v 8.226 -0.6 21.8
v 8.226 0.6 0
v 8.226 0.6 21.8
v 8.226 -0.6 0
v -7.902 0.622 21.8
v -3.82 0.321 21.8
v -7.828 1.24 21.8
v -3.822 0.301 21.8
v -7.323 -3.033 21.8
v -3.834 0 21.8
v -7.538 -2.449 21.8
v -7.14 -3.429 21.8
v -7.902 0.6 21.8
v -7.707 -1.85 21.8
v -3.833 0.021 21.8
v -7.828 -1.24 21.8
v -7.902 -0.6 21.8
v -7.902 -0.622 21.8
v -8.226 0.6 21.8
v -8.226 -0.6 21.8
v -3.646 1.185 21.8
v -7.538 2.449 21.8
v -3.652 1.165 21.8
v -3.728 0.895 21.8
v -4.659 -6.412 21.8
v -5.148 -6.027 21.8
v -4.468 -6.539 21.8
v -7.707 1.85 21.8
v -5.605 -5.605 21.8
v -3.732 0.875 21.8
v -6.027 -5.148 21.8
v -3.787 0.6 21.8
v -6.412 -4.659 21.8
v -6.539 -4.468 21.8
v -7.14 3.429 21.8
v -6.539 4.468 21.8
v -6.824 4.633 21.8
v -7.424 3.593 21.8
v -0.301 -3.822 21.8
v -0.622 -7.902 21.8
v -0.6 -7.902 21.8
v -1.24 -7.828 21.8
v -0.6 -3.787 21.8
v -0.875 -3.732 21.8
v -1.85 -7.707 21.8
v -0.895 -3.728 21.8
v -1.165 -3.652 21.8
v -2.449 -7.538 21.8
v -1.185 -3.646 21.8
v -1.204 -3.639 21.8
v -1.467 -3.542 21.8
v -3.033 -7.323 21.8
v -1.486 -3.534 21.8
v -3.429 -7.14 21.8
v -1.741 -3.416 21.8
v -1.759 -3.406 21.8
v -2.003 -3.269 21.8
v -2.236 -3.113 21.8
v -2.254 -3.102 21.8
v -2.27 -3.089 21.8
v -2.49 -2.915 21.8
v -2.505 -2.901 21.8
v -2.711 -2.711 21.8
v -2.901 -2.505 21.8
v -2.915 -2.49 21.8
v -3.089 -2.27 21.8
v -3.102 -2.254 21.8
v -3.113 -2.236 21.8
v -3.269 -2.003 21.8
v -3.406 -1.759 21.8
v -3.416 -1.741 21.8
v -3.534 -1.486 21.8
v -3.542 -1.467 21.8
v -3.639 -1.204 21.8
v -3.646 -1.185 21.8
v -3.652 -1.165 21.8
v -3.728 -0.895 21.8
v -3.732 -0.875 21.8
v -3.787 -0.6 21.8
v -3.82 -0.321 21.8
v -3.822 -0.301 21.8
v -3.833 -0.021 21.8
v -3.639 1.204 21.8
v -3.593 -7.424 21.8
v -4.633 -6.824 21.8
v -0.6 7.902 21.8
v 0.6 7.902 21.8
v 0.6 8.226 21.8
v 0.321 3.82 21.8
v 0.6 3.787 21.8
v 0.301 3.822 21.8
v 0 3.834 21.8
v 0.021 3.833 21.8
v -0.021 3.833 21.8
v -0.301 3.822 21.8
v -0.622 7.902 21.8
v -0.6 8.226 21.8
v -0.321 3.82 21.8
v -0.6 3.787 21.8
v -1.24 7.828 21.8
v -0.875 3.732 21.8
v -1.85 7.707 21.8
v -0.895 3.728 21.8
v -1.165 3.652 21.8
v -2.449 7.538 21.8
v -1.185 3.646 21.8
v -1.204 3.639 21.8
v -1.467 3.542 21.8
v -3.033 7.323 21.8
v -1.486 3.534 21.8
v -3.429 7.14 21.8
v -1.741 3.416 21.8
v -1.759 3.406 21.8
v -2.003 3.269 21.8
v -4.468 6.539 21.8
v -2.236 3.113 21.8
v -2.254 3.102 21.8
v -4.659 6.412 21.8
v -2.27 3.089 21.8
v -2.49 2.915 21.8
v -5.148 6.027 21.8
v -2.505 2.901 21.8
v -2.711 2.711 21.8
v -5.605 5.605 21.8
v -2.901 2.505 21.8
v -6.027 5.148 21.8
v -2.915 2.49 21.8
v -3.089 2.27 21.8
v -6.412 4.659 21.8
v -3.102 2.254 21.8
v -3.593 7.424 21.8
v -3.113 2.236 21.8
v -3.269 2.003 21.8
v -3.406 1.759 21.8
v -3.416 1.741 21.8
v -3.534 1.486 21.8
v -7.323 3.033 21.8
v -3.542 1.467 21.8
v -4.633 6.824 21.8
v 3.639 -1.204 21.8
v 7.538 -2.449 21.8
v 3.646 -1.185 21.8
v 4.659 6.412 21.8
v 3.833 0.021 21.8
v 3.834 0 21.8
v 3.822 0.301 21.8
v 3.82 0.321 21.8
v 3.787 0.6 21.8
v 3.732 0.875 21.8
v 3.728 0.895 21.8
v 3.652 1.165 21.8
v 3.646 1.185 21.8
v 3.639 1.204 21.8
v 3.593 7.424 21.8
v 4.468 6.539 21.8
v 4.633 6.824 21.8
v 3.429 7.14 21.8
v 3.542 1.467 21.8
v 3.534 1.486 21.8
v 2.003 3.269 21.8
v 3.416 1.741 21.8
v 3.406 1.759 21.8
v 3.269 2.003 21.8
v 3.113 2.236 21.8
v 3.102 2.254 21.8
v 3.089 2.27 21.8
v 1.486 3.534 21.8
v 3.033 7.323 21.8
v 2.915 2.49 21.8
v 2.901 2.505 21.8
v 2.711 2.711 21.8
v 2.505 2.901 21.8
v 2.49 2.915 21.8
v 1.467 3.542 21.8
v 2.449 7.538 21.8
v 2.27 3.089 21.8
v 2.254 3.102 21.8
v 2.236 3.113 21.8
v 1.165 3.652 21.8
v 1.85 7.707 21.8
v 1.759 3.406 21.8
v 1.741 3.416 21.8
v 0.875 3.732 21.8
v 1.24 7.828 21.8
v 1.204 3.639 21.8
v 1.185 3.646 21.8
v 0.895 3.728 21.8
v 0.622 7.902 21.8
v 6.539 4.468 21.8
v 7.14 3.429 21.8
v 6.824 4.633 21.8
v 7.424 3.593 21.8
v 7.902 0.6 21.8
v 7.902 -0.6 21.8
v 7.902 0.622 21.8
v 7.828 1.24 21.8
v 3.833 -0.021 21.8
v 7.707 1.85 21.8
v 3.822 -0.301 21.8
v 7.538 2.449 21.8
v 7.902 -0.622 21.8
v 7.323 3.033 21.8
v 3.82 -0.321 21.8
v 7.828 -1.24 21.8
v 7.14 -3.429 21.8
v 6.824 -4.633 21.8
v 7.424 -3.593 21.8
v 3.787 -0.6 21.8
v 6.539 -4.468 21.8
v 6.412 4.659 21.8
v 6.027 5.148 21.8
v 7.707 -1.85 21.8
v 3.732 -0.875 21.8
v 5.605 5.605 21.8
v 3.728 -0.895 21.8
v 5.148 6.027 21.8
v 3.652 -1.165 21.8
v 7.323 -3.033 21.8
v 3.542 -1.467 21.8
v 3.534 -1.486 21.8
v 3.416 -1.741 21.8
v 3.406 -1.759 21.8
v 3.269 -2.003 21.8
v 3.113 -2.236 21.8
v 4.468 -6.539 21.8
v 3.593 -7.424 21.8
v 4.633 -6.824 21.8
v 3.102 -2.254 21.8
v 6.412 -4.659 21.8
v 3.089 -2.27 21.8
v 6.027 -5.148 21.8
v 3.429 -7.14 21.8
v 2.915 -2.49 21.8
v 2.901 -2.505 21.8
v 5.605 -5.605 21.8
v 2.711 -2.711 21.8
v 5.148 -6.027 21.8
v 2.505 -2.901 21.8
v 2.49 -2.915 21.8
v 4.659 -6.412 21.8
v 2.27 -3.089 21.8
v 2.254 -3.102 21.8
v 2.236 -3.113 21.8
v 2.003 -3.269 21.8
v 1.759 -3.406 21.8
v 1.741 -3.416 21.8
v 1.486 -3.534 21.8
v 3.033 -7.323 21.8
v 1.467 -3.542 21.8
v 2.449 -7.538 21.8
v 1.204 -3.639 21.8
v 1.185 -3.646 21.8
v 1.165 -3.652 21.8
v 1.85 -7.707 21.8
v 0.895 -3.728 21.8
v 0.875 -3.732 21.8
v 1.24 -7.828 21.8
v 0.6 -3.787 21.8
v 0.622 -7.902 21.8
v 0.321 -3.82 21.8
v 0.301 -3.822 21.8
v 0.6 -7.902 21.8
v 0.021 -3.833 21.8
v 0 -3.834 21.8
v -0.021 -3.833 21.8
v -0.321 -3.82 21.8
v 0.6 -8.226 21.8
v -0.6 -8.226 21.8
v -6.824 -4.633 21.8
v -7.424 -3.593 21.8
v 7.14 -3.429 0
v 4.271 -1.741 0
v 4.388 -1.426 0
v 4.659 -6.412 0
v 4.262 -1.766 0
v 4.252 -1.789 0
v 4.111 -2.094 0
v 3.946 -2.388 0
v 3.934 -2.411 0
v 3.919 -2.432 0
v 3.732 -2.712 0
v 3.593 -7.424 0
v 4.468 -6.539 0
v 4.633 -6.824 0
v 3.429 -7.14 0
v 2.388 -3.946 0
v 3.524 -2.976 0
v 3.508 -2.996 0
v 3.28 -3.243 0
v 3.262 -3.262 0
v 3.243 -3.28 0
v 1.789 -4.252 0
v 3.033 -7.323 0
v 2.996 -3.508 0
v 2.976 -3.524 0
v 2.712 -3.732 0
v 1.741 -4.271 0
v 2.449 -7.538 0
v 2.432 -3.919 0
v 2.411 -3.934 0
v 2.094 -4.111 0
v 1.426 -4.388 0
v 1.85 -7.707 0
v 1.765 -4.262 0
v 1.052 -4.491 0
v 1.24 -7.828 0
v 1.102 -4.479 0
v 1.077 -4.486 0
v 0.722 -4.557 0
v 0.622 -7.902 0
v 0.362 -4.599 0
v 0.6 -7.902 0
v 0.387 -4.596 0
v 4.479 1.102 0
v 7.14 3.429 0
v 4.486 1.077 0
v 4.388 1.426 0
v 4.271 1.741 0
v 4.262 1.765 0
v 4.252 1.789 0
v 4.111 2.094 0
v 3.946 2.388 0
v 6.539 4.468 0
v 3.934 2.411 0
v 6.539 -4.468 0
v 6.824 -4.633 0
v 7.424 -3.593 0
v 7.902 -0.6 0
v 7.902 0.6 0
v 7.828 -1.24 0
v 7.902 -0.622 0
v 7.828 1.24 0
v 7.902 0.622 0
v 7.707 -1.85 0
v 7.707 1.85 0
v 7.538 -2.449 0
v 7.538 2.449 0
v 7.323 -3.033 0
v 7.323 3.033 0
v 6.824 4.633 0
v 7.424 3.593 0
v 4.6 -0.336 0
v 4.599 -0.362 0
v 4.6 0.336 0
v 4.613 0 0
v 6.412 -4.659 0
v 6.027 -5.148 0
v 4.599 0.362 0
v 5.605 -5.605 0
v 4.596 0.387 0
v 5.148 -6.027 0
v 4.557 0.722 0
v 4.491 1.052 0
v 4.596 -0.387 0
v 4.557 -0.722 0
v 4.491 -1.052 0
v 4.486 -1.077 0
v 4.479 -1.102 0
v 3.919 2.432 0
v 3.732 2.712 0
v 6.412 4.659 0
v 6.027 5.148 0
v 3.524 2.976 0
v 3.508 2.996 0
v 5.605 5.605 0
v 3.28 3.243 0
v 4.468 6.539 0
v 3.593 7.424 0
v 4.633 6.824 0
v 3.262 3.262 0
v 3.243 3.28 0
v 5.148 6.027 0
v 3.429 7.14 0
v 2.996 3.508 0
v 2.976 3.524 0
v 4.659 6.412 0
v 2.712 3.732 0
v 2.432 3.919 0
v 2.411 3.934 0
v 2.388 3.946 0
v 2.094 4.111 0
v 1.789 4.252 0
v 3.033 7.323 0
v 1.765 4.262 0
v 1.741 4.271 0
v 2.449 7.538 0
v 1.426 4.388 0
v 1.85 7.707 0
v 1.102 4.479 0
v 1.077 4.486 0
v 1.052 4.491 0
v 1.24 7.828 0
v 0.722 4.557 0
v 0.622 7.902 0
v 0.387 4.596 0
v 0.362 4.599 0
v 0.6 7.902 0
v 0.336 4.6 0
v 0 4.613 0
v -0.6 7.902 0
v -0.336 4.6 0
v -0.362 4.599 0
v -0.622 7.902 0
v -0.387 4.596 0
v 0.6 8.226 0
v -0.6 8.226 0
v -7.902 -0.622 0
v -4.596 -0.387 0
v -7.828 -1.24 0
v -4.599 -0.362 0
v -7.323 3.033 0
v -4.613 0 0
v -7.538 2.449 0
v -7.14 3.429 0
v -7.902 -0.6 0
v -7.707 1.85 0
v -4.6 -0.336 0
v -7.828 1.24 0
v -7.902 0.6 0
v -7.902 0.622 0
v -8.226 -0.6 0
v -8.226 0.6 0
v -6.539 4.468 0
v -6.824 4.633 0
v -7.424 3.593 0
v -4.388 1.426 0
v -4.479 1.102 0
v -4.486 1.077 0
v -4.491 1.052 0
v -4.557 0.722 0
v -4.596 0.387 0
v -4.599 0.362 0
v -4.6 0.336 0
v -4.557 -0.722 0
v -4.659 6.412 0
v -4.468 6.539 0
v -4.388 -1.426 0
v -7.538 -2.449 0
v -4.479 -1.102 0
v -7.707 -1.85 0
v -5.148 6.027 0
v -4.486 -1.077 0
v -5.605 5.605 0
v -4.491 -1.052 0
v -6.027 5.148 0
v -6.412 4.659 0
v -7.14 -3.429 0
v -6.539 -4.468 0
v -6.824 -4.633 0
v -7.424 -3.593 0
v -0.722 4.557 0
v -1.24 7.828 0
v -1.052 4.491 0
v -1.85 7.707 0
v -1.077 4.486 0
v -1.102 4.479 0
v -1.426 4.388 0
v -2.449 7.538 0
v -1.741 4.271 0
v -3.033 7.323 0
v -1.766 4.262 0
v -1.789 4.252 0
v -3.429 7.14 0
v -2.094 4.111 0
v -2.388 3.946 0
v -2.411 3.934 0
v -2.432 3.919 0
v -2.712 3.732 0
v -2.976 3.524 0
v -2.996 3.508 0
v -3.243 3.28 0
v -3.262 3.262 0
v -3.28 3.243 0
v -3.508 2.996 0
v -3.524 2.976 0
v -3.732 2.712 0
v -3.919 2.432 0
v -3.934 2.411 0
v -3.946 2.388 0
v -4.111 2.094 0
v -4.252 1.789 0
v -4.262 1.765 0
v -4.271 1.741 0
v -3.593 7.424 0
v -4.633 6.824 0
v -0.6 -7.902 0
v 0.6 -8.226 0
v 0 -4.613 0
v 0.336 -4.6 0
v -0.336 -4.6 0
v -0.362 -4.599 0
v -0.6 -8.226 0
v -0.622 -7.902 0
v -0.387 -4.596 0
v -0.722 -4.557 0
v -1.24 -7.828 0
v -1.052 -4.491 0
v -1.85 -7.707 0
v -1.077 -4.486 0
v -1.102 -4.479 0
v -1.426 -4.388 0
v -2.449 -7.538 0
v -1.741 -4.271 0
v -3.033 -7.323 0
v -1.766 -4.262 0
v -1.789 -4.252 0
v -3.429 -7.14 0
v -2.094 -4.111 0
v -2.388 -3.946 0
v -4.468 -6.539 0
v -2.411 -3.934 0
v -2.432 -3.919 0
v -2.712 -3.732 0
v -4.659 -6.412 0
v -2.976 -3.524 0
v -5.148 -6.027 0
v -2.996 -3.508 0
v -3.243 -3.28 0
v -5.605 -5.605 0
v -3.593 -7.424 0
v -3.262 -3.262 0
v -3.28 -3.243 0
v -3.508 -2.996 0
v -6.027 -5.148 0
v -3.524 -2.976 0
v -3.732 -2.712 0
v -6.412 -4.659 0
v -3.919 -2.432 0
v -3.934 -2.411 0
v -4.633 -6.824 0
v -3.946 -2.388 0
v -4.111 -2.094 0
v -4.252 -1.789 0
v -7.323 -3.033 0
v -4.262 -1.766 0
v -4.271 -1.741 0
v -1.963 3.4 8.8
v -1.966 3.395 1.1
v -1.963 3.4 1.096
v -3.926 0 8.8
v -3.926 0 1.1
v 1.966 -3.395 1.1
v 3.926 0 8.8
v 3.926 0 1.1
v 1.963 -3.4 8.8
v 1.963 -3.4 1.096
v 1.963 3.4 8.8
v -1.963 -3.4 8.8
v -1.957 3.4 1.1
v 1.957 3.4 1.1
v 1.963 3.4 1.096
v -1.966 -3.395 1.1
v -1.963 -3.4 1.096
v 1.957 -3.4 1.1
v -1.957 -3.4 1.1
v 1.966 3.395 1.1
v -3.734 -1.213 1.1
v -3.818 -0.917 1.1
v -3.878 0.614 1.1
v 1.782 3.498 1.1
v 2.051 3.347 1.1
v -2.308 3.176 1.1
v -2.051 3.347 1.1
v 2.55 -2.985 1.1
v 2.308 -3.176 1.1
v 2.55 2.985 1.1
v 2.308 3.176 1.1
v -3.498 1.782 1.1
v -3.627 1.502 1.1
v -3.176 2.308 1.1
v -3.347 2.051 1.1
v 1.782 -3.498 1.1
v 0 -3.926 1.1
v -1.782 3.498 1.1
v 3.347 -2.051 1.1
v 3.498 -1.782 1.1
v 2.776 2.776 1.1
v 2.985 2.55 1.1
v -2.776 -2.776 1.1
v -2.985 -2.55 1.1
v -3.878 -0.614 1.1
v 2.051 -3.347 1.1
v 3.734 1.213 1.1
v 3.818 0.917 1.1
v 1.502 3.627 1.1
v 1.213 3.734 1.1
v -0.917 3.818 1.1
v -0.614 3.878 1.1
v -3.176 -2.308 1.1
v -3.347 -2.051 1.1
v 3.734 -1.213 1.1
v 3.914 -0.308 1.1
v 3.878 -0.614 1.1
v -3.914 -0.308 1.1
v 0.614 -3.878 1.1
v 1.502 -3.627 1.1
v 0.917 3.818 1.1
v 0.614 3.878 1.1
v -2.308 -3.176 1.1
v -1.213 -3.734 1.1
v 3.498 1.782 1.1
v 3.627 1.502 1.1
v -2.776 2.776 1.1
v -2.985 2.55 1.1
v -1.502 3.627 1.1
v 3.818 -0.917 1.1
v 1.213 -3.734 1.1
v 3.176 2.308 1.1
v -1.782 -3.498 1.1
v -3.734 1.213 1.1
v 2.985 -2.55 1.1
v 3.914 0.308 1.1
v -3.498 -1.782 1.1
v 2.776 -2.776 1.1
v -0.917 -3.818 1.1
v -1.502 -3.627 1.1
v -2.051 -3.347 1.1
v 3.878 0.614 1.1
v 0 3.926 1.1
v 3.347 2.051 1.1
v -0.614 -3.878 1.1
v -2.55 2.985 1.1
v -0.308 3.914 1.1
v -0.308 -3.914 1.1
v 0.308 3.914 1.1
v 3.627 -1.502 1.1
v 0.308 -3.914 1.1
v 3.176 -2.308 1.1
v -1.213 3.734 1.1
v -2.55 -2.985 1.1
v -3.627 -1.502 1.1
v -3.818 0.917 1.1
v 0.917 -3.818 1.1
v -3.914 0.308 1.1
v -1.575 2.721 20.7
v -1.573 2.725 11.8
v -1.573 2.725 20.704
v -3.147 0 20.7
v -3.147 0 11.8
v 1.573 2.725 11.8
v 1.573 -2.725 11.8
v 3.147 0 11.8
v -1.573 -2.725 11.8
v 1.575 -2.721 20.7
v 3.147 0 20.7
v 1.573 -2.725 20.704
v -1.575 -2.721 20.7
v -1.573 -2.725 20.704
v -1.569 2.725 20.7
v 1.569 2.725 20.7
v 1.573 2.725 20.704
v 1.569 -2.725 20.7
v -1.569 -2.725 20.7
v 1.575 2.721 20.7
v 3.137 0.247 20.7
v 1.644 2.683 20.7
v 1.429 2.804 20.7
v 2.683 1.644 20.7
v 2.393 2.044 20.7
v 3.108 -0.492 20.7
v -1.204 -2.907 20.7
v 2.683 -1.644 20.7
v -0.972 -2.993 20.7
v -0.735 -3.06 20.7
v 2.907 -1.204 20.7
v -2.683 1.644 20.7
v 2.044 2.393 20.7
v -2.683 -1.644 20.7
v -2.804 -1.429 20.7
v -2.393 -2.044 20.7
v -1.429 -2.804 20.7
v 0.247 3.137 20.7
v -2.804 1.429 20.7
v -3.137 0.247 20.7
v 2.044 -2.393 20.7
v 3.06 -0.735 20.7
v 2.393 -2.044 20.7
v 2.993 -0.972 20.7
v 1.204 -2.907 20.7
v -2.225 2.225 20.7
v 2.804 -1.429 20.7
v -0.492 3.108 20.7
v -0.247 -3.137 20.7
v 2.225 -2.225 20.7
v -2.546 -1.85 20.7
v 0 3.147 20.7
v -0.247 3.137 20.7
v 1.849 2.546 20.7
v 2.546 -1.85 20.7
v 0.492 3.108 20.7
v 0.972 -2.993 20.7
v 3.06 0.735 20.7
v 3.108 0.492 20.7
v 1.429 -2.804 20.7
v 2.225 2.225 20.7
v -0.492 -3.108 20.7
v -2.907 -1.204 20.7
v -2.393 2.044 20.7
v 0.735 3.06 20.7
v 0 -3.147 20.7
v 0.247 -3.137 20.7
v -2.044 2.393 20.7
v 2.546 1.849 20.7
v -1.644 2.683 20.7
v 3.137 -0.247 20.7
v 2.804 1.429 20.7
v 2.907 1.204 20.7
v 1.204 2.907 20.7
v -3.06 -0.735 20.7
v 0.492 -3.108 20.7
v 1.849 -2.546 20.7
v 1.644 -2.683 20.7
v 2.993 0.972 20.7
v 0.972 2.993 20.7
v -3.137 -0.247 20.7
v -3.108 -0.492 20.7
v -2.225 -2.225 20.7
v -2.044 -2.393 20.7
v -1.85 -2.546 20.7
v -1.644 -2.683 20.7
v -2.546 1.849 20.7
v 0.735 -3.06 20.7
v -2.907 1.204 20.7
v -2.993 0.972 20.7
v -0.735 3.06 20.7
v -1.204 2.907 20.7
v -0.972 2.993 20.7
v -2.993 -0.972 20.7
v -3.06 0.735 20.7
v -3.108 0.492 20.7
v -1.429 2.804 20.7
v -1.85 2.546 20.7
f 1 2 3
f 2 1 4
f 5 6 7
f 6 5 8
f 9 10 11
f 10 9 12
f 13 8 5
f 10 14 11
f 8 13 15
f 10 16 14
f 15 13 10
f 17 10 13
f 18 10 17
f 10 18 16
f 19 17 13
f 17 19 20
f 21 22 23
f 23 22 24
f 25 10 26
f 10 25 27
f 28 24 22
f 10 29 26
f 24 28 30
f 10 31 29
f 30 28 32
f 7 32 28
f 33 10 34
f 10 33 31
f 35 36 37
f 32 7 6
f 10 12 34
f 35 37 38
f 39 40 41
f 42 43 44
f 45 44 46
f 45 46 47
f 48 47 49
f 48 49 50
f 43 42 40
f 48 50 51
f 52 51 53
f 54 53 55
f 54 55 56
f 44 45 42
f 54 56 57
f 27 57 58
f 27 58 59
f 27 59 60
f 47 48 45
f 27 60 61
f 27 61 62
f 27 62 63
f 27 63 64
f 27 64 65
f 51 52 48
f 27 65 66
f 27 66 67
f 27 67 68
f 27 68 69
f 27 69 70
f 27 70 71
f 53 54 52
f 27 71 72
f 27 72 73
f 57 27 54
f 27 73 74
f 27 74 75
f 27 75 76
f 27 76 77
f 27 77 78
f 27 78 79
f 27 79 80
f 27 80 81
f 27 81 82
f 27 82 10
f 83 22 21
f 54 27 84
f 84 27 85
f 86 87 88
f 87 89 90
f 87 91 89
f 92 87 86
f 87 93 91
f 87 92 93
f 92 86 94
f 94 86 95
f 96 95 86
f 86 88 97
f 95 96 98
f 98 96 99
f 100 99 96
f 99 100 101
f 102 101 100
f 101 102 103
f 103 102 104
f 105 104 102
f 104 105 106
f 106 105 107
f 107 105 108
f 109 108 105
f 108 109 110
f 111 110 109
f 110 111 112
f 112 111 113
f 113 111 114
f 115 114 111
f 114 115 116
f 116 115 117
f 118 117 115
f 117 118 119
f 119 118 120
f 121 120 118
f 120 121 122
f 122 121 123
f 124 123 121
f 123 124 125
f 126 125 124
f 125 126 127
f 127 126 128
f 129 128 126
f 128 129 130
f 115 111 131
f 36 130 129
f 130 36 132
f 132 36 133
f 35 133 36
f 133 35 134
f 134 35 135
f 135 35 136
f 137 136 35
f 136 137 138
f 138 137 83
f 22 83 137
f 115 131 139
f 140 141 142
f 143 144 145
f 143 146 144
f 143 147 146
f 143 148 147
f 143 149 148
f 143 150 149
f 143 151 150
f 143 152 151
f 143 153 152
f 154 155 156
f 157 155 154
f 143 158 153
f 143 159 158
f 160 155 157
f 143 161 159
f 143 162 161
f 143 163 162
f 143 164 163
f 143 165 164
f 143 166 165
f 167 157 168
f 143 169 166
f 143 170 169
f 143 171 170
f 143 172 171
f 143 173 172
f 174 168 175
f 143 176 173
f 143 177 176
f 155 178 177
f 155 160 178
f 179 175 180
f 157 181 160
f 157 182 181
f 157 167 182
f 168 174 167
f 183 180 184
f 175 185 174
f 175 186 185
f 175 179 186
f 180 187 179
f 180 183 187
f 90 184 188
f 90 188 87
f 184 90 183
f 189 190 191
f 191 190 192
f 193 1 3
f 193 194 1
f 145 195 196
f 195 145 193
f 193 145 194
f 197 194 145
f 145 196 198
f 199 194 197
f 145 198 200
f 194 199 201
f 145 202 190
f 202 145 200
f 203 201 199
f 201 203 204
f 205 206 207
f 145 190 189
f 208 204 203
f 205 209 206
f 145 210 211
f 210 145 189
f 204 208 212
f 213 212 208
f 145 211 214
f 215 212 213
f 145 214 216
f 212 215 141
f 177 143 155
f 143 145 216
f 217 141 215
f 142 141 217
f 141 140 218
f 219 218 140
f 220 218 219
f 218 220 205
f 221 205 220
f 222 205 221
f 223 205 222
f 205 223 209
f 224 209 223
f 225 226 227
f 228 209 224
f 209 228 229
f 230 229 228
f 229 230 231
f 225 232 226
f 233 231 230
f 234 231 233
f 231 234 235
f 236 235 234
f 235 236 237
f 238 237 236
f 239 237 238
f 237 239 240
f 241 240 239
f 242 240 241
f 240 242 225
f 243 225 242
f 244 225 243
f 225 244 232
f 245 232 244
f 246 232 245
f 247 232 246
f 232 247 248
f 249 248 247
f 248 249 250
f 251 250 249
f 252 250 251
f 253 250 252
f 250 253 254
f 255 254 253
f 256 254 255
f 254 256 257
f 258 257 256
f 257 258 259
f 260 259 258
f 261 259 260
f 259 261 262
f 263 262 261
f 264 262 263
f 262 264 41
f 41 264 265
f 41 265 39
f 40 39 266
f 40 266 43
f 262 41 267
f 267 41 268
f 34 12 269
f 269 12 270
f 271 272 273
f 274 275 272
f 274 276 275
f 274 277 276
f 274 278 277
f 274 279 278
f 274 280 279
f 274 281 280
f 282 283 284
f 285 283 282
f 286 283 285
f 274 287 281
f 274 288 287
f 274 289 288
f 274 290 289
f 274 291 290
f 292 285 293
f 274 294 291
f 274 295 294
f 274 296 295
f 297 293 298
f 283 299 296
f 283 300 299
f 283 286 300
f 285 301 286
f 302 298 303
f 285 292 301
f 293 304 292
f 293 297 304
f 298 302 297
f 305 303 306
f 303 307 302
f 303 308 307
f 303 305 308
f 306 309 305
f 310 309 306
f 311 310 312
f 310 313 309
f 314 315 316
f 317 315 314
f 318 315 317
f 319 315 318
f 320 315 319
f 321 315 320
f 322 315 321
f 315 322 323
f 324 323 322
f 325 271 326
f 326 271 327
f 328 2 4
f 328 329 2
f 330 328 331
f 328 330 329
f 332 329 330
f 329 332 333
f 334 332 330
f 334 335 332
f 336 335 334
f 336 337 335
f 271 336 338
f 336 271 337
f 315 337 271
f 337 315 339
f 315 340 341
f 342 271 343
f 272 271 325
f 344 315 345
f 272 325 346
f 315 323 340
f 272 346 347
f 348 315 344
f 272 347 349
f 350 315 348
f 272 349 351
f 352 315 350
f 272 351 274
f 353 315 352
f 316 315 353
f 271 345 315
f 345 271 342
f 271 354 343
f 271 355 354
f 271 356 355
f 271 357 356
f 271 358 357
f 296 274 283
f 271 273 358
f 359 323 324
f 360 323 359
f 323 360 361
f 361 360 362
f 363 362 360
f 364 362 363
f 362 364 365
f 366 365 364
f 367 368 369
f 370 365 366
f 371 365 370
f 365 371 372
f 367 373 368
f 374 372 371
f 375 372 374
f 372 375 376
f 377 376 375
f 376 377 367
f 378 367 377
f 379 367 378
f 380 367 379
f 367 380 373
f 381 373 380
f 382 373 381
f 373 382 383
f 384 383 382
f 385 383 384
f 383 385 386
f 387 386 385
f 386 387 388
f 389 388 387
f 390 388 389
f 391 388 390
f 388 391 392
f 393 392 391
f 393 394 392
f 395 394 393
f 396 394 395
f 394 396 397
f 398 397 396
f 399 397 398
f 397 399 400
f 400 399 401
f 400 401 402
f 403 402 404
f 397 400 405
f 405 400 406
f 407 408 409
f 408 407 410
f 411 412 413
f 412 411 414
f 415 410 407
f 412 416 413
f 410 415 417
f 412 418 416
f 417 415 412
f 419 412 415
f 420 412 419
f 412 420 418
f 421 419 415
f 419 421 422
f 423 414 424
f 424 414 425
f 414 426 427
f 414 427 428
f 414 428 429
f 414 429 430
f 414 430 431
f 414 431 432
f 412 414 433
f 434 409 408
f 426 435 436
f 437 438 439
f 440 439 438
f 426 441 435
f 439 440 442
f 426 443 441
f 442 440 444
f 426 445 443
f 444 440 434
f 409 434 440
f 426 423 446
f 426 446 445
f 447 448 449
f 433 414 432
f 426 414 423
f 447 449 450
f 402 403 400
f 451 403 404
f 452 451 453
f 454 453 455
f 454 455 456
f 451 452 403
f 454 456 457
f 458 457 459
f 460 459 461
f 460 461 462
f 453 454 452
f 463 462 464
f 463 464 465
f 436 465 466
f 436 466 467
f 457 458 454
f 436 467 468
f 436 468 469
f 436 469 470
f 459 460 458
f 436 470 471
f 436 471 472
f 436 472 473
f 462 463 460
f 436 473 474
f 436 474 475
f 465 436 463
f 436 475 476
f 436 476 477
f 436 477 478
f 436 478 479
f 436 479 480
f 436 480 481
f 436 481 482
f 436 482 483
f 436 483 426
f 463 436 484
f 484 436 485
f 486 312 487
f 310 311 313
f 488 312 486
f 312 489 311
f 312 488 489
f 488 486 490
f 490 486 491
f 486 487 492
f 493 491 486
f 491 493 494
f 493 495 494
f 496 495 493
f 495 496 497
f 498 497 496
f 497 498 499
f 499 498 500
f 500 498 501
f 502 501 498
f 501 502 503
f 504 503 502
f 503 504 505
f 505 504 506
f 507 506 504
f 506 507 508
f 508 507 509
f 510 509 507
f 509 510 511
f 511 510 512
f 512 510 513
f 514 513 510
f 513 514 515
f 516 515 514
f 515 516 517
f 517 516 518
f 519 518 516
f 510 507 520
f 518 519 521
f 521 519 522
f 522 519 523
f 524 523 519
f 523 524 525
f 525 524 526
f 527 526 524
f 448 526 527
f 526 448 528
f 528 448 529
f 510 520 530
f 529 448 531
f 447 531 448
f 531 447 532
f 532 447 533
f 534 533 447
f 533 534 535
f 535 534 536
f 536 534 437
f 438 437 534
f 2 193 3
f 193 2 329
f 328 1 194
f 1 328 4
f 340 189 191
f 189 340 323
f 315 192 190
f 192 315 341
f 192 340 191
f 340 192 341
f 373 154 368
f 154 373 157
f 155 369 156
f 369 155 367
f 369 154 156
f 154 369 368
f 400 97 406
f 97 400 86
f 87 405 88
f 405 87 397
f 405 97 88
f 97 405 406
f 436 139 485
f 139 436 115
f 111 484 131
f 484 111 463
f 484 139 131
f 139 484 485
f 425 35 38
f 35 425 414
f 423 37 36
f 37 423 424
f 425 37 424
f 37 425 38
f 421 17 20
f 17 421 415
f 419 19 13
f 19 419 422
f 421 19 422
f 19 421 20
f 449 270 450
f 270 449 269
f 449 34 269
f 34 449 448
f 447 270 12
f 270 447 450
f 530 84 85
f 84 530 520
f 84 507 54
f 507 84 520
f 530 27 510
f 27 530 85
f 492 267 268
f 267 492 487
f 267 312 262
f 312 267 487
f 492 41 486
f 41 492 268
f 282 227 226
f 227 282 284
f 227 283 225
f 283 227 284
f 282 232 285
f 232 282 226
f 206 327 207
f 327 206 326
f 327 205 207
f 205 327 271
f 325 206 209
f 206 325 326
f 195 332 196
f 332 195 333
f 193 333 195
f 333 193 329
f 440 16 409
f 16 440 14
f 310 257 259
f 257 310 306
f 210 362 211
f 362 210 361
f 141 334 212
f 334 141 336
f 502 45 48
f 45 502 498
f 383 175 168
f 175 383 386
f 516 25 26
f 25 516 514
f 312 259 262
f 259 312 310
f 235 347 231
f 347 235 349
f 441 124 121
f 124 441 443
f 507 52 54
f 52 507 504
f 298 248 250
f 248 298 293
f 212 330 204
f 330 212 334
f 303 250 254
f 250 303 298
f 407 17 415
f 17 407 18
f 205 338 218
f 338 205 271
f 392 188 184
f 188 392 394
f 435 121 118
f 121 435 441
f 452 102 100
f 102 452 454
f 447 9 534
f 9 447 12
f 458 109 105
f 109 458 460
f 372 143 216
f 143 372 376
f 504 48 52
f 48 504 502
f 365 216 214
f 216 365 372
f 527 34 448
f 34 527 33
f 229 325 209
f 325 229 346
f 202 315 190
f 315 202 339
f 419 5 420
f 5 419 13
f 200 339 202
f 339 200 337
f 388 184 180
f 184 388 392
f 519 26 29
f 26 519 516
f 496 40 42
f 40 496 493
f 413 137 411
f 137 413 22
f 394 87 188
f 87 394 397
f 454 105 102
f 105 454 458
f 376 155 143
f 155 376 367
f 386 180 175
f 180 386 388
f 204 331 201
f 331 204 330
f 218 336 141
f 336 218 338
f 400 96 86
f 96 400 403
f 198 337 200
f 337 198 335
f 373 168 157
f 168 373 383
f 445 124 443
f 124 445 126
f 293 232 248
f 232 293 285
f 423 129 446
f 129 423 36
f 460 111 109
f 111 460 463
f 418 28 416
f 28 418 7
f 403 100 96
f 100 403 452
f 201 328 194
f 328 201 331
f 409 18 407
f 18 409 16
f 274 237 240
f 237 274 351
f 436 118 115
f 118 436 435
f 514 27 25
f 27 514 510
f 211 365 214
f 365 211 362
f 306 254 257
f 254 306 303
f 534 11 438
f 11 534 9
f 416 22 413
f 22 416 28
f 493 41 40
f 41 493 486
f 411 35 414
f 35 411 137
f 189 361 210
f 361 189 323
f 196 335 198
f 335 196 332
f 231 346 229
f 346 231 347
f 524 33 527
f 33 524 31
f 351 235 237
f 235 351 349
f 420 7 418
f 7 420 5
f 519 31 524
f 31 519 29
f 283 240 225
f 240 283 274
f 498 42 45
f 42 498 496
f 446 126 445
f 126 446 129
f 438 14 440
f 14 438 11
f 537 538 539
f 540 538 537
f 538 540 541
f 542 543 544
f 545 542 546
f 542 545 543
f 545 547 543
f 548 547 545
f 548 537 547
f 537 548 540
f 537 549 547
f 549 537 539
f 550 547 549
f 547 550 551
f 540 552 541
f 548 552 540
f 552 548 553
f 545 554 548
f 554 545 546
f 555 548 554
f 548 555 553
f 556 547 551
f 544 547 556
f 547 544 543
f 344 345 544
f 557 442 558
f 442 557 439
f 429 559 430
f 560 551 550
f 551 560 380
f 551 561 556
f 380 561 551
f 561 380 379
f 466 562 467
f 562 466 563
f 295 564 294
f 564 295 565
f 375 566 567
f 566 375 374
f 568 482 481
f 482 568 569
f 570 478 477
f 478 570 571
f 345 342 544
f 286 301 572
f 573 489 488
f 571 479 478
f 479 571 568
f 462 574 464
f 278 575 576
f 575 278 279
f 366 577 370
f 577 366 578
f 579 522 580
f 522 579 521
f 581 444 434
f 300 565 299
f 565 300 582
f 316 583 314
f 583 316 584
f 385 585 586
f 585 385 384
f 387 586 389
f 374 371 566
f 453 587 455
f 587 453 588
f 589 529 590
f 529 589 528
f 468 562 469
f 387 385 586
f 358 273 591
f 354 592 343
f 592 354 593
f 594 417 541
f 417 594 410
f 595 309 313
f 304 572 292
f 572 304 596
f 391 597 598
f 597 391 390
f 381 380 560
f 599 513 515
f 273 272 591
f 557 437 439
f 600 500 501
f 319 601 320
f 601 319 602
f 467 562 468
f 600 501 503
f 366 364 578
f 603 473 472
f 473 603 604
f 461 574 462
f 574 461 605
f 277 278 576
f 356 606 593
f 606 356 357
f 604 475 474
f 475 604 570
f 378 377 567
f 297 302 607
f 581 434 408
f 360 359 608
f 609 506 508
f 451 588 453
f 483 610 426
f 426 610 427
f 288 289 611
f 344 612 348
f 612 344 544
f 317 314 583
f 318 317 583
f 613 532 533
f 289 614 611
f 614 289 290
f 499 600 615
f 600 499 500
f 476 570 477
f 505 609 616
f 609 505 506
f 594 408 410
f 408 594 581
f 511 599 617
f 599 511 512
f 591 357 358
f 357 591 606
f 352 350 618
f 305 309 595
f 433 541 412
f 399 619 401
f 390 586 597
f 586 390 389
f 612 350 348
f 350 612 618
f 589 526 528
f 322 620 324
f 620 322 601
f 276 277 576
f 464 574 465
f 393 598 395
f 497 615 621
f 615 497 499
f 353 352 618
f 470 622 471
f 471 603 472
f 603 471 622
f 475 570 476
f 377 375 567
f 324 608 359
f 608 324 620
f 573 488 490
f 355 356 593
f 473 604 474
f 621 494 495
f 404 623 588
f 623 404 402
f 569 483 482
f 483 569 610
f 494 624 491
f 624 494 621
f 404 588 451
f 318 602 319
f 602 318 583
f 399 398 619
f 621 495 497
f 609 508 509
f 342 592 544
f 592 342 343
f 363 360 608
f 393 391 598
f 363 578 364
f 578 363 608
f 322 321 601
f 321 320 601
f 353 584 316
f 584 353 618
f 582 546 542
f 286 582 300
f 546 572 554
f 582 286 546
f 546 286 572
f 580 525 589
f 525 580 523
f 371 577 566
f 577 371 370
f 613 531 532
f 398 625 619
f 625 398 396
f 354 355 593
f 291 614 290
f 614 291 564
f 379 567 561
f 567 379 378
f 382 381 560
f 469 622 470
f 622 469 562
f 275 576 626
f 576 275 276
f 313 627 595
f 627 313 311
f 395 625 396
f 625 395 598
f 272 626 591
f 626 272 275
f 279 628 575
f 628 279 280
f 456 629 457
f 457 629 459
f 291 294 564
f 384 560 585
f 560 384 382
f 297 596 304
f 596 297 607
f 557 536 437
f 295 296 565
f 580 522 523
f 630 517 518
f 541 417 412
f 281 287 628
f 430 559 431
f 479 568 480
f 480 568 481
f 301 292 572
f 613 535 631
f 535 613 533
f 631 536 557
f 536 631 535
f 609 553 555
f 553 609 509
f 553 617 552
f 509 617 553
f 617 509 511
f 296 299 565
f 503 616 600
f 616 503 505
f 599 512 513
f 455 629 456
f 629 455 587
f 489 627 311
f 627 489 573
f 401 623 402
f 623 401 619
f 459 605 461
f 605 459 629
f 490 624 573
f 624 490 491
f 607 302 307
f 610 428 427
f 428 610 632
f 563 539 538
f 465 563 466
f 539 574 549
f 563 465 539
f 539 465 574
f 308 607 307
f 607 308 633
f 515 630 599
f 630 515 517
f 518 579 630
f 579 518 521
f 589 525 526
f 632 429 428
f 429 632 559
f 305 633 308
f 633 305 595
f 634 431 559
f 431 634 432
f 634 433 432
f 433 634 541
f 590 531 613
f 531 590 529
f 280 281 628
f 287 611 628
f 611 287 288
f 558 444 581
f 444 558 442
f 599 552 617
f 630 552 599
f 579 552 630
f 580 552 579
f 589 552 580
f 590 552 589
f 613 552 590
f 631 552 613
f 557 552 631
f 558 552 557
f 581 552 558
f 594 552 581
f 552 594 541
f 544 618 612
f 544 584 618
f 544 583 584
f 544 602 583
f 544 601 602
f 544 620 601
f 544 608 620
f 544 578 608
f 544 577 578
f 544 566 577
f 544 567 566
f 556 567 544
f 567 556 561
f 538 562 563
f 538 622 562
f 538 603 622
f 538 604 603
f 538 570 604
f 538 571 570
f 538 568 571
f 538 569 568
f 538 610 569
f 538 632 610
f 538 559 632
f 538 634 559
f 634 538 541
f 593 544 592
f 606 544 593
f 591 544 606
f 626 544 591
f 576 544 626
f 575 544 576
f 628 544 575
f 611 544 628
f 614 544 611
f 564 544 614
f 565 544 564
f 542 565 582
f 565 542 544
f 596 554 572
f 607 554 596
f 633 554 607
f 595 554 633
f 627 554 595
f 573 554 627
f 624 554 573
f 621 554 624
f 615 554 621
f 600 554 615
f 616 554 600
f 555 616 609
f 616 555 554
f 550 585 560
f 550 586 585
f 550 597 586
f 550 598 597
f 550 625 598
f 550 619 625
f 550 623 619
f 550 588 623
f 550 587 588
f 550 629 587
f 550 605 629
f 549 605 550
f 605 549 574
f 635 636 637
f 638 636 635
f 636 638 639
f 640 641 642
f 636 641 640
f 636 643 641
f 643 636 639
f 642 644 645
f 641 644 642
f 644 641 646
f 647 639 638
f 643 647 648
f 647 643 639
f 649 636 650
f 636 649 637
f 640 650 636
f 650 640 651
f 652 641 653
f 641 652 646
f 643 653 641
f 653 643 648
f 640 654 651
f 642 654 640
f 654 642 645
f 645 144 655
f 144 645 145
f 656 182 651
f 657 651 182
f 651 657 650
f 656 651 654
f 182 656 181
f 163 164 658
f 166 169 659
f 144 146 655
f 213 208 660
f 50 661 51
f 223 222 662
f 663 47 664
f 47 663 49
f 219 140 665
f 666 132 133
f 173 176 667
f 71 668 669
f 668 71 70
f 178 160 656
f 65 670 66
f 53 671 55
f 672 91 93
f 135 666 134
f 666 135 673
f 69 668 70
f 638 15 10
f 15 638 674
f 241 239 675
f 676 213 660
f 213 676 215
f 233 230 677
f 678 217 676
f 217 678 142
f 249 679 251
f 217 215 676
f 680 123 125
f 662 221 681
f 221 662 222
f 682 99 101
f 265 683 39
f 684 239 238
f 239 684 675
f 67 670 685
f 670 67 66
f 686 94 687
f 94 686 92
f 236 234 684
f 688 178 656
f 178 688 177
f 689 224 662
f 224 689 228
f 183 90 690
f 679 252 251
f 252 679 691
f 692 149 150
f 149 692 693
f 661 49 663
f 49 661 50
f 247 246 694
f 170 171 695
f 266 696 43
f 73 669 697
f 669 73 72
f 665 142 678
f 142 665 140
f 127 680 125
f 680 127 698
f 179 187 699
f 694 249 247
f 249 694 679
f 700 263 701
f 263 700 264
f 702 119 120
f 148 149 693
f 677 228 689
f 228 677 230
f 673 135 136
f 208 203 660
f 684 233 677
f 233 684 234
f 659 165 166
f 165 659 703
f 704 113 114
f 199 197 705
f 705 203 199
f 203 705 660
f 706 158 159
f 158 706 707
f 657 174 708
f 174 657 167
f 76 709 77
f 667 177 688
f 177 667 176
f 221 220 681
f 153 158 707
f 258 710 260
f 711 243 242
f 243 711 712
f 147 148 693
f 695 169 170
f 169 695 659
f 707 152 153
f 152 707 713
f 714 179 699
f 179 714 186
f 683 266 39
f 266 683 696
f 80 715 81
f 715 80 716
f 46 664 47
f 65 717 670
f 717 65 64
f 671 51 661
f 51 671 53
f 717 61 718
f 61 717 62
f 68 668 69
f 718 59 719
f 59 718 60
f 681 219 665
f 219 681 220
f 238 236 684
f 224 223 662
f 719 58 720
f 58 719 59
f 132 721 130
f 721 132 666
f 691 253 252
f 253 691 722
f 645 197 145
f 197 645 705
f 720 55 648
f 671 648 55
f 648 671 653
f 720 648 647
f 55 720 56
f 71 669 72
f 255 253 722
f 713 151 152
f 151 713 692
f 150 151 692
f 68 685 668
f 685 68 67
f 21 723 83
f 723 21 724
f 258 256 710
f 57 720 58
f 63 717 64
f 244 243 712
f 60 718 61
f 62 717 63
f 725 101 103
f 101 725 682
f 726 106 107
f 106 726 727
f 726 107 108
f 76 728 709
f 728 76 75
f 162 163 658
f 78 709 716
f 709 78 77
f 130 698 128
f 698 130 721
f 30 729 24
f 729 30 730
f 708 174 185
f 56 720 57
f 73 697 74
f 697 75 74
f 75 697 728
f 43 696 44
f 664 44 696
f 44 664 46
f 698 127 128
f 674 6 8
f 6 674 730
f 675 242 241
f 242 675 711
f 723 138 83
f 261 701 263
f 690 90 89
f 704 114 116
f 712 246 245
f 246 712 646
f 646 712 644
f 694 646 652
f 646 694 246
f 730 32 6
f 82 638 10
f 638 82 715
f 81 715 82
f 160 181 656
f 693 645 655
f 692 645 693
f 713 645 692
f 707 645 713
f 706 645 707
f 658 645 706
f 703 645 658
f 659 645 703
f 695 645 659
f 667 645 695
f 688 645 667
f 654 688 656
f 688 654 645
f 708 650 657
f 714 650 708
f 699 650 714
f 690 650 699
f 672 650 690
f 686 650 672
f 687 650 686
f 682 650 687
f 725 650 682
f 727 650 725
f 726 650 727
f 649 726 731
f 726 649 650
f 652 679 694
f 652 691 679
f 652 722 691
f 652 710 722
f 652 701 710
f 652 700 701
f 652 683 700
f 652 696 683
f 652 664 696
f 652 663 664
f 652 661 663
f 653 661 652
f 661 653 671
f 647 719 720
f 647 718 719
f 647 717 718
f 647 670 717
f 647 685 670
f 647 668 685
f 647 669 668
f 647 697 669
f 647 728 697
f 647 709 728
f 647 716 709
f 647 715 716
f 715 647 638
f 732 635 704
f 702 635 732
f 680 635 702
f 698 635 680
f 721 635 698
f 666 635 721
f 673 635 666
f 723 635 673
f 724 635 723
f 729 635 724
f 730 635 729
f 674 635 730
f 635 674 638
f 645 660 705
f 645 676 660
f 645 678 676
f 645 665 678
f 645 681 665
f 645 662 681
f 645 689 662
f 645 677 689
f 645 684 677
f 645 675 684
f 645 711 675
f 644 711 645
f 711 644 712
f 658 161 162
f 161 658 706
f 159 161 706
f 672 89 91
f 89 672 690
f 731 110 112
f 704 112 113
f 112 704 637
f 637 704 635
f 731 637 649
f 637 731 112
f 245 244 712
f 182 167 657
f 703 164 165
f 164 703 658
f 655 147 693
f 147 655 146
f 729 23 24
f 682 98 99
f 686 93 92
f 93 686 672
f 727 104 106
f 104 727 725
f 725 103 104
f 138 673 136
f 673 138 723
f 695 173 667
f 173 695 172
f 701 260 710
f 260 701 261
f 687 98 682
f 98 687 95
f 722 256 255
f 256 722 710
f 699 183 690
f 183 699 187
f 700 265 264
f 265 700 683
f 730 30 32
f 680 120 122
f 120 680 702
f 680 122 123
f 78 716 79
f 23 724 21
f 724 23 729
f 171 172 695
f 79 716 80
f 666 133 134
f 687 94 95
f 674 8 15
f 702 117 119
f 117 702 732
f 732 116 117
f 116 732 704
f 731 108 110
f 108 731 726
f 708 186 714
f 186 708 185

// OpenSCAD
// Timemore C5 ESP grinder to screwdriver adapter V9.
// Top socket preserves the verified M5 grinder fit.
// Bottom socket accepts a standard H6.35 (1/4 inch) hex bit.

$fn = 80;

// Verified existing socket: 5 mm across flats with print clearance.
m5_af = 5.0 + 0.45;
m5_depth_top = 10;

// H6.35 bit socket: nominal 6.35 mm across flats with matching clearance.
h6_af = 6.35 + 0.45;
h6_depth_bottom = 8 * 1.10;

// Keep at least 4 mm of material around the larger H6 socket.
wall_min = 4;
body_d = h6_af / cos(30) + wall_min * 2;
body_h = m5_depth_top + h6_depth_bottom + 3;

module hex_socket(af, h) {
    linear_extrude(height = h)
        circle(d = af / cos(30), $fn = 6);
}

module adapter() {
    difference() {
        union() {
            cylinder(d = body_d, h = body_h);

            // Vertical ribs improve grip without changing the socket geometry.
            for (a = [0 : 30 : 330]) {
                rotate([0, 0, a])
                    translate([body_d / 2 - 0.3, -0.6, 0])
                        cube([0.6, 1.2, body_h]);
            }
        }

        // Bottom H6.35 socket, 10% deeper than the previous 8 mm socket.
        translate([0, 0, -0.1])
            hex_socket(h6_af, h6_depth_bottom + 0.1);
        translate([0, 0, -0.1])
            cylinder(d1 = h6_af / cos(30) + 1.5, d2 = h6_af / cos(30), h = 1.2);

        // Top M5 socket, unchanged from the proven fit.
        translate([0, 0, body_h - m5_depth_top])
            hex_socket(m5_af, m5_depth_top + 0.1);
        translate([0, 0, body_h + 0.1])
            mirror([0, 0, 1])
                cylinder(d1 = m5_af / cos(30) + 1.5, d2 = m5_af / cos(30), h = 1.2);
    }
}

adapter();
